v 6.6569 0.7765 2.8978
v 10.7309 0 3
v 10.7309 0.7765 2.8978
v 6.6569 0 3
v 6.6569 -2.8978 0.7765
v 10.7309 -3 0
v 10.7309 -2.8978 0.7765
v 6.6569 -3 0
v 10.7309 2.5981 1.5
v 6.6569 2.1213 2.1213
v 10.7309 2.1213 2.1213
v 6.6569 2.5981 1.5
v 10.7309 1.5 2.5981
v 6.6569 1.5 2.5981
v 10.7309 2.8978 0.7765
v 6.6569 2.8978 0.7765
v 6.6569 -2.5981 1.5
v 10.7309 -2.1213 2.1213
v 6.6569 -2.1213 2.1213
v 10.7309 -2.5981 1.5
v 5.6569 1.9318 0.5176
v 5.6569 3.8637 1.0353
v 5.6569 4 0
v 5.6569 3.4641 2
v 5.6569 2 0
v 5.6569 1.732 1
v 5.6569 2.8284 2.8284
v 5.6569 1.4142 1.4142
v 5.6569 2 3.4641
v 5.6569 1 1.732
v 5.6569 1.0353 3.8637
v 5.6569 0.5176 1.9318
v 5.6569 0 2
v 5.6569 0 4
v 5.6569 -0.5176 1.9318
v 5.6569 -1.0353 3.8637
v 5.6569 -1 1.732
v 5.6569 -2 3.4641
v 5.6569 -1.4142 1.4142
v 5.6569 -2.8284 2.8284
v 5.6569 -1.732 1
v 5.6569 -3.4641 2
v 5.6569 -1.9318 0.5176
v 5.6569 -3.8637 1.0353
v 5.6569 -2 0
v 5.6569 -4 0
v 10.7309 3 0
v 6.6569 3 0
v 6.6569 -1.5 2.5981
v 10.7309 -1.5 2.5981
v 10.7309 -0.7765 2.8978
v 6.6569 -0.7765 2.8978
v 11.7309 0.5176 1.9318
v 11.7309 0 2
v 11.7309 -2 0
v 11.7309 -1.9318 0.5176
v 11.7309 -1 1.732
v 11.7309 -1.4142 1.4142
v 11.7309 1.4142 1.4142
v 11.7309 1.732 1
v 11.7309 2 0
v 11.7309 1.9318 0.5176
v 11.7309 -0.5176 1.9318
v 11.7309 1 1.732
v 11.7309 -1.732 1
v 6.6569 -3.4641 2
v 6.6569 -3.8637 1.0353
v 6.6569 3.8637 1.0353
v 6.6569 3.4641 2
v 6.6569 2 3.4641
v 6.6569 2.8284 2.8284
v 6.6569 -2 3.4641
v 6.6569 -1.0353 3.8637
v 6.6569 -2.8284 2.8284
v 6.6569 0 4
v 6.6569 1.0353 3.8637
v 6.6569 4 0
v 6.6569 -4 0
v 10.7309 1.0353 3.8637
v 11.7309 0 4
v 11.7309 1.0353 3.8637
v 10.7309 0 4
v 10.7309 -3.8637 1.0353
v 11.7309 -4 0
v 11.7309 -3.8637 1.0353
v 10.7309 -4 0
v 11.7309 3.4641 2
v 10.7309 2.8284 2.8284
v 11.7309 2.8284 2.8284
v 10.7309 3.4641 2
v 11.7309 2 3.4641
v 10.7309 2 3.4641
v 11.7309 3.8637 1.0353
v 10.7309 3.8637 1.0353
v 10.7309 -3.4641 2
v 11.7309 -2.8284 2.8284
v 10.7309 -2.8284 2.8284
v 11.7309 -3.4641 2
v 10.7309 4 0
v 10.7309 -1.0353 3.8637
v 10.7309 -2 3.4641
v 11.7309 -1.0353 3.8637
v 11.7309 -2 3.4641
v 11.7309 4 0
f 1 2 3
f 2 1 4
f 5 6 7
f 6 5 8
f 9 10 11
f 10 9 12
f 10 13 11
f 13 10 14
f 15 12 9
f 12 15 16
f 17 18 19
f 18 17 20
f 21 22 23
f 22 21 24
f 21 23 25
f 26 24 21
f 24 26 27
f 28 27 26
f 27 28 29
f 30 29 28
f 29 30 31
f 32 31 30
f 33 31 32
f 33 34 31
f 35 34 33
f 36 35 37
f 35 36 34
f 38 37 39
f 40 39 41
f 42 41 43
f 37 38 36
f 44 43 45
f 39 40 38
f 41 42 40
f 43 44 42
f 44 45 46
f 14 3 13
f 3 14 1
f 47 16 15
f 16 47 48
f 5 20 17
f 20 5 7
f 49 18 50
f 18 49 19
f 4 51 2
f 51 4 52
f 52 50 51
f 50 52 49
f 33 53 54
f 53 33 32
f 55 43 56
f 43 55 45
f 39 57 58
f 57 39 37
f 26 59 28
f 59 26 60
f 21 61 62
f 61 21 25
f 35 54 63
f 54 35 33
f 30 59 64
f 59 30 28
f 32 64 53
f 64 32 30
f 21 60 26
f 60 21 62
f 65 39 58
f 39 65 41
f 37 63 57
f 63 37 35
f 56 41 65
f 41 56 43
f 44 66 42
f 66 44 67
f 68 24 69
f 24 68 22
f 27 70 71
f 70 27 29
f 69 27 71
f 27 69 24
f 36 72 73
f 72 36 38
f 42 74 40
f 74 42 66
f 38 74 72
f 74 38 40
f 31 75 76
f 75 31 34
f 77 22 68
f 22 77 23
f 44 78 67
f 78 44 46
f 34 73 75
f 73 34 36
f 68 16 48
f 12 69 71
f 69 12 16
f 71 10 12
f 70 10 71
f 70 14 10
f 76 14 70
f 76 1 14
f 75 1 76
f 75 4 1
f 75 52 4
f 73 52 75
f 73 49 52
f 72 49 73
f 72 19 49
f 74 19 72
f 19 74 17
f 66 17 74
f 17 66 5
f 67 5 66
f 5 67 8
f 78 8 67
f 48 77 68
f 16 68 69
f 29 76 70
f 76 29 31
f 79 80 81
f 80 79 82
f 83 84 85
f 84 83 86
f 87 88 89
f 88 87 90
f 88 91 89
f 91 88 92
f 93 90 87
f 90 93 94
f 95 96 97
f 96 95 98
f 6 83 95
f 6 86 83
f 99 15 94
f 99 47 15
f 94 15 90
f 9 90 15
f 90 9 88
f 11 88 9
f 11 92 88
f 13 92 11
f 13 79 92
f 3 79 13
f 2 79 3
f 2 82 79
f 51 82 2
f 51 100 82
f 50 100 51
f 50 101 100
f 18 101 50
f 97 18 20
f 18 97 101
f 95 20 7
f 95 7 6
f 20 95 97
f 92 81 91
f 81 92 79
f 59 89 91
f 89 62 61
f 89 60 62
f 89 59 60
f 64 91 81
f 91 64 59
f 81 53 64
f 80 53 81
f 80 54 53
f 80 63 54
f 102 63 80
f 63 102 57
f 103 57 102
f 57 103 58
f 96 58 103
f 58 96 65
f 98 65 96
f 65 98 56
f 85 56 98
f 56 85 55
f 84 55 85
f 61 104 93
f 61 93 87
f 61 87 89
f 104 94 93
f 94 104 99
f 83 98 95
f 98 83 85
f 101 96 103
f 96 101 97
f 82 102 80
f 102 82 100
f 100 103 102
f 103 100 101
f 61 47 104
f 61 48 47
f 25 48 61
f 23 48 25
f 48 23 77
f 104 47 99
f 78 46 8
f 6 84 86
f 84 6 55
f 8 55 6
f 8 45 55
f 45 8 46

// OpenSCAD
// file: ../build_environments.scad
// build_environments.scad: modules to build level sections
//

module pool(diameter=10.0, wall_height=2.0, step_width=3.0, connections=[])
{
    difference() {
        union() {
        difference() {
            cylinder(h=0.5,r1=diameter+step_width,r2=diameter+step_width,$fn=48);
            translate([0,0,-0.1])
                cylinder(h=0.7,r1=diameter,r2=diameter,$fn=48);
        }
        difference() {
            cylinder(h=wall_height,r1=diameter+step_width+1.0,r2=diameter+step_width+1.0,$fn=48);
            translate([0,0,-0.1])
                cylinder(h=wall_height+0.2,r1=diameter+step_width,r2=diameter+step_width,$fn=48);
        }
        }
    
        for (c = connections)
        {
            rotate([0,90,0]) {
                angle = atan2(c[1],c[0]);
                rotate([-angle,0,0]) {
                    cylinder(h=diameter+5.0,r1=c[2],r2=c[2],$fn=48);
                }
            }
        }
    }
}

module straight(length=10.0, width=2.0, dy1=0.0, dy2=0.0, dz=0.0)
{
    dims = [0, 0, 0, 0, 0, (dz/length)];
    matrix = [
        [ 1, dims[0], dims[1], 0 ],
        [ dims[2], 1, dims[4], 0 ],
        [ dims[5], dims[3], 1, 0 ],
        [ 0, 0, 0, 1 ]
    ];
    multmatrix(matrix)
    difference() {
        translate([dy1,0,0])
        union() {
            rotate([0,90,0]) {
                difference() {
                    cylinder(h=(length-dy1-dy2),r1=width+1.0,r2=width+1.0,$fn=24);
                    translate([0,0,-0.1])
                        cylinder(h=(length-dy1-dy2+0.2),r1=width,r2=width,$fn=24);
                }
                difference() {
                    cylinder(h=1.0,r1=width+2.0,r2=width+2.0,$fn=24);
                    translate([0,0,-0.1])
                        cylinder(h=1.2,r1=width,r2=width,$fn=24);
                }
                translate([0,0,(length-dy1-dy2)-1.0]) {
                    difference() {
                        cylinder(h=1.0,r1=width+2.0,r2=width+2.0,$fn=24);
                        translate([0,0,-0.1])
                            cylinder(h=1.2,r1=width,r2=width,$fn=24);
                    }
                }
            }
        }
        translate([0,0,-(2*width+4.0)/2])
            cube([3*length,3*length,2*width+4.0],center=true);
    }
}

module curve(p0=[0,0], center=[0,0], dir=1, angle=0.0, width=2.0)
{
    radius = sqrt((p0[0]-center[0])*(p0[0]-center[0]) + (p0[1]-center[1])*(p0[1]-center[1]));
    if (dir == 0) {
        difference() {
            rotate([0,0,-90])
            difference() {
                rotate_extrude(angle = angle, convexity = 10, $fn=32)
                    translate([radius, 0, 0])
                        circle(r = width+1.0,$fn=24);
                rotate([0,0,-1.0])
                    rotate_extrude(angle = angle+2.0, convexity = 10, $fn=32)
                        translate([radius, 0, 0])
                            circle(r = width,$fn=24);
            }
            translate([0,0,-(2*width+4.0)/2])
                cube([5*radius,5*radius,2*width+4.0],center=true);
        }
    }
    else {
        difference() {
            rotate([0,0,90])
            difference() {
                rotate_extrude(angle = -angle, convexity = 10, $fn=32)
                    translate([radius, 0, 0])
                        circle(r = width+1.0,$fn=24);
                rotate([0,0,1.0])
                    rotate_extrude(angle = -angle-2.0, convexity = 10, $fn=32)
                        translate([radius, 0, 0])
                            circle(r = width,$fn=24);
            }
            translate([0,0,-(2*width+4.0)/2])
                cube([5*radius,5*radius,2*width+4.0],center=true);
        }
    }

}

// test pool
//pool(diameter=12.0000, wall_height=3.0000, step_width=3.0000, connections=[[0.0000,-26.0000,2.0000], [23.6074,0.0000,2.0000]]);

// test straight, slope
//straight(length=26.0000, width=2.0000, dy1=11.8322, dy2=6.7082, dz=0.0000);
//straight(length=29.1549, width=12.0000, dy1=0.0000, dy2=0.0000, dz=-15.0000);

// test curve
//curve(p0=[23.6074, 0.0000], center=[23.6074, 5.0000], dir=0, angle=60.1011, width=2.0000);
//curve(p0=[33.6426, 12.4219], center=[37.9771, 9.9295], dir=1, angle=120.4627, width=2.0000);
// main file
use <../build_environments.scad>;
straight(length=18.4391, width=2.0000, dy1=5.6569, dy2=6.7082, dz=0.0000);
